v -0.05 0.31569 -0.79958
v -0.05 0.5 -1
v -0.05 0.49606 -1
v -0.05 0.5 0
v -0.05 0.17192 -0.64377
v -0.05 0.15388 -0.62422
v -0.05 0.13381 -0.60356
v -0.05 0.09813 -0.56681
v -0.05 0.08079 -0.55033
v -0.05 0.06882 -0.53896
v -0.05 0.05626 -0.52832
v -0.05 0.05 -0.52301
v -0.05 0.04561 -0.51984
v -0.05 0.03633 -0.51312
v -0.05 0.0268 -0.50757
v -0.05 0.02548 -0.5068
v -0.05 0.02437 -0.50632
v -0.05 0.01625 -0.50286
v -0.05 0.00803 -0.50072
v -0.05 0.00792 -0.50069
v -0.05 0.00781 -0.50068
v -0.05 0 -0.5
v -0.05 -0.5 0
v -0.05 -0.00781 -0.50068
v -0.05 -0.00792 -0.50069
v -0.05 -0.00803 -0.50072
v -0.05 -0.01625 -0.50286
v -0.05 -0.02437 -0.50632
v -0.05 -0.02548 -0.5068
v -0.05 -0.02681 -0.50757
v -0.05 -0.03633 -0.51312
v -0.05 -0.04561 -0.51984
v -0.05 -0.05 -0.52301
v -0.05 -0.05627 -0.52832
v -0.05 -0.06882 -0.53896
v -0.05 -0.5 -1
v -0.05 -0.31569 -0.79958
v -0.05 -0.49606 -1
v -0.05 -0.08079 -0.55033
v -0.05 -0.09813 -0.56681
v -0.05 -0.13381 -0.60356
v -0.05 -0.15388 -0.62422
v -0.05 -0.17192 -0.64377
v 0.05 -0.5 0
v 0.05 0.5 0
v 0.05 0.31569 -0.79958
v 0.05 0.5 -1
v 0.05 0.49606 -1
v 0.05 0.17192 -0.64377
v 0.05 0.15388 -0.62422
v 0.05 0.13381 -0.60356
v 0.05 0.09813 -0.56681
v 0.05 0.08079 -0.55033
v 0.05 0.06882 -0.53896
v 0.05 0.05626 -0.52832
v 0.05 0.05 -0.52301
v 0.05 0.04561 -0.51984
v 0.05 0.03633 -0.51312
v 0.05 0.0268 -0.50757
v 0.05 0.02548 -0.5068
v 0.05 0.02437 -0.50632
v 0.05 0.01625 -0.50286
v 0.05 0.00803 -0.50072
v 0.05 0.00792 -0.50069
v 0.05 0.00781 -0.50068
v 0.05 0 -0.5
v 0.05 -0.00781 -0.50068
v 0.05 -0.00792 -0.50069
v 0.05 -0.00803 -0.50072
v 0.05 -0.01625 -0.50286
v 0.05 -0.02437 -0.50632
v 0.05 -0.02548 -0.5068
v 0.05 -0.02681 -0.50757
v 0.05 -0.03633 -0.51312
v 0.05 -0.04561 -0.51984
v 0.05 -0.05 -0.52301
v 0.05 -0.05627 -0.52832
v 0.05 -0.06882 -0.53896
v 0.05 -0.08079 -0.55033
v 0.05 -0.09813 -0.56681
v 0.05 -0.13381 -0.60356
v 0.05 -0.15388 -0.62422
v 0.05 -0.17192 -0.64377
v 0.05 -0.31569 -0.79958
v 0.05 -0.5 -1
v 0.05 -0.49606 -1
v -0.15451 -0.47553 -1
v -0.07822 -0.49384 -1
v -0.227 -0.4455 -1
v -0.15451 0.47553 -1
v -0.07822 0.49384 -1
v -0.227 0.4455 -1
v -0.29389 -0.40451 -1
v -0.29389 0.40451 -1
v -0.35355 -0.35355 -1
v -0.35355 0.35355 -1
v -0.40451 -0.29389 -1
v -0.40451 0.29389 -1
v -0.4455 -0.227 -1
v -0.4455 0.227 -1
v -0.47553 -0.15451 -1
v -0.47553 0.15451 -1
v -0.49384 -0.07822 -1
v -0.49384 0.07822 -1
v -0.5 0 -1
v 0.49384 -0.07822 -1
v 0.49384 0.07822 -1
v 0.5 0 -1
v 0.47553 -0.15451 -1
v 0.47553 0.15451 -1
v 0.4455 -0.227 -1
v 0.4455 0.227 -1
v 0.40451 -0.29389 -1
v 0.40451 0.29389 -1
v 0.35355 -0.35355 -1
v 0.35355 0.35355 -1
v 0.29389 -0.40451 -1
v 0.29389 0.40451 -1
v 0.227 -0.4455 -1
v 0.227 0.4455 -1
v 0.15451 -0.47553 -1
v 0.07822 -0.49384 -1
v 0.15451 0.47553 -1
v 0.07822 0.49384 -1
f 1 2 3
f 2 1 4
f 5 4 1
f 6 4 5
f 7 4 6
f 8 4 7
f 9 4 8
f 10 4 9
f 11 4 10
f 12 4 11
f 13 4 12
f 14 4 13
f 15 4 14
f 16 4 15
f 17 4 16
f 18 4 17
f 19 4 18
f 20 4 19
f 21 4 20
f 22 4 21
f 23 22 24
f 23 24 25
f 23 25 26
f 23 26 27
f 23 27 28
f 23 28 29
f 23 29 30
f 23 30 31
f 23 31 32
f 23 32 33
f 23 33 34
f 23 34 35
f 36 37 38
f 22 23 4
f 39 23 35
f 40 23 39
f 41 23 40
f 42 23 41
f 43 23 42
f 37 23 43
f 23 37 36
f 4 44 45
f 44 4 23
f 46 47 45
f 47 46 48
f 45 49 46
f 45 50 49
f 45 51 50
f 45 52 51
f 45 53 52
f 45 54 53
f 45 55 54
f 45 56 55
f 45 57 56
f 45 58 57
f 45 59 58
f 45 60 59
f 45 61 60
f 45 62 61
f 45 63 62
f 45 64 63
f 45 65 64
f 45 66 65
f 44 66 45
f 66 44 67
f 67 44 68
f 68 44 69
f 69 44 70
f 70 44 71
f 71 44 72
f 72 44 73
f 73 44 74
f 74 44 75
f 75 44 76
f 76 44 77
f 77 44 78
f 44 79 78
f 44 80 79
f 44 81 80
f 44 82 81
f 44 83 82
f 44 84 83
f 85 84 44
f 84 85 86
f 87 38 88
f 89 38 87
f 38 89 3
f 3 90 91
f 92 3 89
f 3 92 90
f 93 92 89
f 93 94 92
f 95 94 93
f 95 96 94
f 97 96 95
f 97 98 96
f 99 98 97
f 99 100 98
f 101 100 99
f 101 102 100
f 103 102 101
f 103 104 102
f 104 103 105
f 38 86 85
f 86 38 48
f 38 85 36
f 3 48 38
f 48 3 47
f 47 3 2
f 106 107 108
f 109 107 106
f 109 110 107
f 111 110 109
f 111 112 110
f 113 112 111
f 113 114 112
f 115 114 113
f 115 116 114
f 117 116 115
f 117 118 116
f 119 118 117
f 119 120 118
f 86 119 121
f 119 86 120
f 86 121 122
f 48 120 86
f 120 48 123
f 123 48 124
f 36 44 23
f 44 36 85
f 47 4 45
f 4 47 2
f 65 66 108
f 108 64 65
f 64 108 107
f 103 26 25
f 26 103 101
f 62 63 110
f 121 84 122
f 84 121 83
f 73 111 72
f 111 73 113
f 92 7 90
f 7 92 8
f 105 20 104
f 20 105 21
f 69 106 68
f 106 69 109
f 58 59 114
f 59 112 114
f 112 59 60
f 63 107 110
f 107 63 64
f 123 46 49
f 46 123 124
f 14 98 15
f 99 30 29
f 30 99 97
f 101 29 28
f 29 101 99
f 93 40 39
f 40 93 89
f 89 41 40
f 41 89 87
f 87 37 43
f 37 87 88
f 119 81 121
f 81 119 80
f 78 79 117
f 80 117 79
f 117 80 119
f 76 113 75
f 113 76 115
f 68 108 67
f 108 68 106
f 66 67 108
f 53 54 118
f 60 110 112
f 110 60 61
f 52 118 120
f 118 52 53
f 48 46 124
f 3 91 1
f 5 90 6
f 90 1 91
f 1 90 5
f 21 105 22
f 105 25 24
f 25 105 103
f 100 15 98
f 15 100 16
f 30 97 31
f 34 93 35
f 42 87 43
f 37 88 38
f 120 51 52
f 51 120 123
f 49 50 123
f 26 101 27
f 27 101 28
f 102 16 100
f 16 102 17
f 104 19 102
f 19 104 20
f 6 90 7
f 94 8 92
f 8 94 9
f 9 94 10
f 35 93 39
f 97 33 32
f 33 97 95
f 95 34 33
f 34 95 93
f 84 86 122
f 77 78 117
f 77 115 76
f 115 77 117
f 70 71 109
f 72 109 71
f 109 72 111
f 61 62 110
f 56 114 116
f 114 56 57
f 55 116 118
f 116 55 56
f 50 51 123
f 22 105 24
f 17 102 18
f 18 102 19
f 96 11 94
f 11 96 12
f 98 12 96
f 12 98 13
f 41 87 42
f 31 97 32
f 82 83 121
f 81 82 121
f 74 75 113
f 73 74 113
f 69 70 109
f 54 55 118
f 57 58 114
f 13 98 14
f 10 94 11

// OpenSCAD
//----------------------------------------------
// Custom Support size must be 1x1x1 
//----------------------------------------------
$fn=40;

translate([-0.5,-0.5,-0.5]) 
union() {
    translate([0.5,0.5,0.0]) cube([0.1,1,1], center = true);
    translate([0.5,0.5,-0.25]) cylinder(h=0.5, r1=0.5, r2=0.05, center = true);
}
